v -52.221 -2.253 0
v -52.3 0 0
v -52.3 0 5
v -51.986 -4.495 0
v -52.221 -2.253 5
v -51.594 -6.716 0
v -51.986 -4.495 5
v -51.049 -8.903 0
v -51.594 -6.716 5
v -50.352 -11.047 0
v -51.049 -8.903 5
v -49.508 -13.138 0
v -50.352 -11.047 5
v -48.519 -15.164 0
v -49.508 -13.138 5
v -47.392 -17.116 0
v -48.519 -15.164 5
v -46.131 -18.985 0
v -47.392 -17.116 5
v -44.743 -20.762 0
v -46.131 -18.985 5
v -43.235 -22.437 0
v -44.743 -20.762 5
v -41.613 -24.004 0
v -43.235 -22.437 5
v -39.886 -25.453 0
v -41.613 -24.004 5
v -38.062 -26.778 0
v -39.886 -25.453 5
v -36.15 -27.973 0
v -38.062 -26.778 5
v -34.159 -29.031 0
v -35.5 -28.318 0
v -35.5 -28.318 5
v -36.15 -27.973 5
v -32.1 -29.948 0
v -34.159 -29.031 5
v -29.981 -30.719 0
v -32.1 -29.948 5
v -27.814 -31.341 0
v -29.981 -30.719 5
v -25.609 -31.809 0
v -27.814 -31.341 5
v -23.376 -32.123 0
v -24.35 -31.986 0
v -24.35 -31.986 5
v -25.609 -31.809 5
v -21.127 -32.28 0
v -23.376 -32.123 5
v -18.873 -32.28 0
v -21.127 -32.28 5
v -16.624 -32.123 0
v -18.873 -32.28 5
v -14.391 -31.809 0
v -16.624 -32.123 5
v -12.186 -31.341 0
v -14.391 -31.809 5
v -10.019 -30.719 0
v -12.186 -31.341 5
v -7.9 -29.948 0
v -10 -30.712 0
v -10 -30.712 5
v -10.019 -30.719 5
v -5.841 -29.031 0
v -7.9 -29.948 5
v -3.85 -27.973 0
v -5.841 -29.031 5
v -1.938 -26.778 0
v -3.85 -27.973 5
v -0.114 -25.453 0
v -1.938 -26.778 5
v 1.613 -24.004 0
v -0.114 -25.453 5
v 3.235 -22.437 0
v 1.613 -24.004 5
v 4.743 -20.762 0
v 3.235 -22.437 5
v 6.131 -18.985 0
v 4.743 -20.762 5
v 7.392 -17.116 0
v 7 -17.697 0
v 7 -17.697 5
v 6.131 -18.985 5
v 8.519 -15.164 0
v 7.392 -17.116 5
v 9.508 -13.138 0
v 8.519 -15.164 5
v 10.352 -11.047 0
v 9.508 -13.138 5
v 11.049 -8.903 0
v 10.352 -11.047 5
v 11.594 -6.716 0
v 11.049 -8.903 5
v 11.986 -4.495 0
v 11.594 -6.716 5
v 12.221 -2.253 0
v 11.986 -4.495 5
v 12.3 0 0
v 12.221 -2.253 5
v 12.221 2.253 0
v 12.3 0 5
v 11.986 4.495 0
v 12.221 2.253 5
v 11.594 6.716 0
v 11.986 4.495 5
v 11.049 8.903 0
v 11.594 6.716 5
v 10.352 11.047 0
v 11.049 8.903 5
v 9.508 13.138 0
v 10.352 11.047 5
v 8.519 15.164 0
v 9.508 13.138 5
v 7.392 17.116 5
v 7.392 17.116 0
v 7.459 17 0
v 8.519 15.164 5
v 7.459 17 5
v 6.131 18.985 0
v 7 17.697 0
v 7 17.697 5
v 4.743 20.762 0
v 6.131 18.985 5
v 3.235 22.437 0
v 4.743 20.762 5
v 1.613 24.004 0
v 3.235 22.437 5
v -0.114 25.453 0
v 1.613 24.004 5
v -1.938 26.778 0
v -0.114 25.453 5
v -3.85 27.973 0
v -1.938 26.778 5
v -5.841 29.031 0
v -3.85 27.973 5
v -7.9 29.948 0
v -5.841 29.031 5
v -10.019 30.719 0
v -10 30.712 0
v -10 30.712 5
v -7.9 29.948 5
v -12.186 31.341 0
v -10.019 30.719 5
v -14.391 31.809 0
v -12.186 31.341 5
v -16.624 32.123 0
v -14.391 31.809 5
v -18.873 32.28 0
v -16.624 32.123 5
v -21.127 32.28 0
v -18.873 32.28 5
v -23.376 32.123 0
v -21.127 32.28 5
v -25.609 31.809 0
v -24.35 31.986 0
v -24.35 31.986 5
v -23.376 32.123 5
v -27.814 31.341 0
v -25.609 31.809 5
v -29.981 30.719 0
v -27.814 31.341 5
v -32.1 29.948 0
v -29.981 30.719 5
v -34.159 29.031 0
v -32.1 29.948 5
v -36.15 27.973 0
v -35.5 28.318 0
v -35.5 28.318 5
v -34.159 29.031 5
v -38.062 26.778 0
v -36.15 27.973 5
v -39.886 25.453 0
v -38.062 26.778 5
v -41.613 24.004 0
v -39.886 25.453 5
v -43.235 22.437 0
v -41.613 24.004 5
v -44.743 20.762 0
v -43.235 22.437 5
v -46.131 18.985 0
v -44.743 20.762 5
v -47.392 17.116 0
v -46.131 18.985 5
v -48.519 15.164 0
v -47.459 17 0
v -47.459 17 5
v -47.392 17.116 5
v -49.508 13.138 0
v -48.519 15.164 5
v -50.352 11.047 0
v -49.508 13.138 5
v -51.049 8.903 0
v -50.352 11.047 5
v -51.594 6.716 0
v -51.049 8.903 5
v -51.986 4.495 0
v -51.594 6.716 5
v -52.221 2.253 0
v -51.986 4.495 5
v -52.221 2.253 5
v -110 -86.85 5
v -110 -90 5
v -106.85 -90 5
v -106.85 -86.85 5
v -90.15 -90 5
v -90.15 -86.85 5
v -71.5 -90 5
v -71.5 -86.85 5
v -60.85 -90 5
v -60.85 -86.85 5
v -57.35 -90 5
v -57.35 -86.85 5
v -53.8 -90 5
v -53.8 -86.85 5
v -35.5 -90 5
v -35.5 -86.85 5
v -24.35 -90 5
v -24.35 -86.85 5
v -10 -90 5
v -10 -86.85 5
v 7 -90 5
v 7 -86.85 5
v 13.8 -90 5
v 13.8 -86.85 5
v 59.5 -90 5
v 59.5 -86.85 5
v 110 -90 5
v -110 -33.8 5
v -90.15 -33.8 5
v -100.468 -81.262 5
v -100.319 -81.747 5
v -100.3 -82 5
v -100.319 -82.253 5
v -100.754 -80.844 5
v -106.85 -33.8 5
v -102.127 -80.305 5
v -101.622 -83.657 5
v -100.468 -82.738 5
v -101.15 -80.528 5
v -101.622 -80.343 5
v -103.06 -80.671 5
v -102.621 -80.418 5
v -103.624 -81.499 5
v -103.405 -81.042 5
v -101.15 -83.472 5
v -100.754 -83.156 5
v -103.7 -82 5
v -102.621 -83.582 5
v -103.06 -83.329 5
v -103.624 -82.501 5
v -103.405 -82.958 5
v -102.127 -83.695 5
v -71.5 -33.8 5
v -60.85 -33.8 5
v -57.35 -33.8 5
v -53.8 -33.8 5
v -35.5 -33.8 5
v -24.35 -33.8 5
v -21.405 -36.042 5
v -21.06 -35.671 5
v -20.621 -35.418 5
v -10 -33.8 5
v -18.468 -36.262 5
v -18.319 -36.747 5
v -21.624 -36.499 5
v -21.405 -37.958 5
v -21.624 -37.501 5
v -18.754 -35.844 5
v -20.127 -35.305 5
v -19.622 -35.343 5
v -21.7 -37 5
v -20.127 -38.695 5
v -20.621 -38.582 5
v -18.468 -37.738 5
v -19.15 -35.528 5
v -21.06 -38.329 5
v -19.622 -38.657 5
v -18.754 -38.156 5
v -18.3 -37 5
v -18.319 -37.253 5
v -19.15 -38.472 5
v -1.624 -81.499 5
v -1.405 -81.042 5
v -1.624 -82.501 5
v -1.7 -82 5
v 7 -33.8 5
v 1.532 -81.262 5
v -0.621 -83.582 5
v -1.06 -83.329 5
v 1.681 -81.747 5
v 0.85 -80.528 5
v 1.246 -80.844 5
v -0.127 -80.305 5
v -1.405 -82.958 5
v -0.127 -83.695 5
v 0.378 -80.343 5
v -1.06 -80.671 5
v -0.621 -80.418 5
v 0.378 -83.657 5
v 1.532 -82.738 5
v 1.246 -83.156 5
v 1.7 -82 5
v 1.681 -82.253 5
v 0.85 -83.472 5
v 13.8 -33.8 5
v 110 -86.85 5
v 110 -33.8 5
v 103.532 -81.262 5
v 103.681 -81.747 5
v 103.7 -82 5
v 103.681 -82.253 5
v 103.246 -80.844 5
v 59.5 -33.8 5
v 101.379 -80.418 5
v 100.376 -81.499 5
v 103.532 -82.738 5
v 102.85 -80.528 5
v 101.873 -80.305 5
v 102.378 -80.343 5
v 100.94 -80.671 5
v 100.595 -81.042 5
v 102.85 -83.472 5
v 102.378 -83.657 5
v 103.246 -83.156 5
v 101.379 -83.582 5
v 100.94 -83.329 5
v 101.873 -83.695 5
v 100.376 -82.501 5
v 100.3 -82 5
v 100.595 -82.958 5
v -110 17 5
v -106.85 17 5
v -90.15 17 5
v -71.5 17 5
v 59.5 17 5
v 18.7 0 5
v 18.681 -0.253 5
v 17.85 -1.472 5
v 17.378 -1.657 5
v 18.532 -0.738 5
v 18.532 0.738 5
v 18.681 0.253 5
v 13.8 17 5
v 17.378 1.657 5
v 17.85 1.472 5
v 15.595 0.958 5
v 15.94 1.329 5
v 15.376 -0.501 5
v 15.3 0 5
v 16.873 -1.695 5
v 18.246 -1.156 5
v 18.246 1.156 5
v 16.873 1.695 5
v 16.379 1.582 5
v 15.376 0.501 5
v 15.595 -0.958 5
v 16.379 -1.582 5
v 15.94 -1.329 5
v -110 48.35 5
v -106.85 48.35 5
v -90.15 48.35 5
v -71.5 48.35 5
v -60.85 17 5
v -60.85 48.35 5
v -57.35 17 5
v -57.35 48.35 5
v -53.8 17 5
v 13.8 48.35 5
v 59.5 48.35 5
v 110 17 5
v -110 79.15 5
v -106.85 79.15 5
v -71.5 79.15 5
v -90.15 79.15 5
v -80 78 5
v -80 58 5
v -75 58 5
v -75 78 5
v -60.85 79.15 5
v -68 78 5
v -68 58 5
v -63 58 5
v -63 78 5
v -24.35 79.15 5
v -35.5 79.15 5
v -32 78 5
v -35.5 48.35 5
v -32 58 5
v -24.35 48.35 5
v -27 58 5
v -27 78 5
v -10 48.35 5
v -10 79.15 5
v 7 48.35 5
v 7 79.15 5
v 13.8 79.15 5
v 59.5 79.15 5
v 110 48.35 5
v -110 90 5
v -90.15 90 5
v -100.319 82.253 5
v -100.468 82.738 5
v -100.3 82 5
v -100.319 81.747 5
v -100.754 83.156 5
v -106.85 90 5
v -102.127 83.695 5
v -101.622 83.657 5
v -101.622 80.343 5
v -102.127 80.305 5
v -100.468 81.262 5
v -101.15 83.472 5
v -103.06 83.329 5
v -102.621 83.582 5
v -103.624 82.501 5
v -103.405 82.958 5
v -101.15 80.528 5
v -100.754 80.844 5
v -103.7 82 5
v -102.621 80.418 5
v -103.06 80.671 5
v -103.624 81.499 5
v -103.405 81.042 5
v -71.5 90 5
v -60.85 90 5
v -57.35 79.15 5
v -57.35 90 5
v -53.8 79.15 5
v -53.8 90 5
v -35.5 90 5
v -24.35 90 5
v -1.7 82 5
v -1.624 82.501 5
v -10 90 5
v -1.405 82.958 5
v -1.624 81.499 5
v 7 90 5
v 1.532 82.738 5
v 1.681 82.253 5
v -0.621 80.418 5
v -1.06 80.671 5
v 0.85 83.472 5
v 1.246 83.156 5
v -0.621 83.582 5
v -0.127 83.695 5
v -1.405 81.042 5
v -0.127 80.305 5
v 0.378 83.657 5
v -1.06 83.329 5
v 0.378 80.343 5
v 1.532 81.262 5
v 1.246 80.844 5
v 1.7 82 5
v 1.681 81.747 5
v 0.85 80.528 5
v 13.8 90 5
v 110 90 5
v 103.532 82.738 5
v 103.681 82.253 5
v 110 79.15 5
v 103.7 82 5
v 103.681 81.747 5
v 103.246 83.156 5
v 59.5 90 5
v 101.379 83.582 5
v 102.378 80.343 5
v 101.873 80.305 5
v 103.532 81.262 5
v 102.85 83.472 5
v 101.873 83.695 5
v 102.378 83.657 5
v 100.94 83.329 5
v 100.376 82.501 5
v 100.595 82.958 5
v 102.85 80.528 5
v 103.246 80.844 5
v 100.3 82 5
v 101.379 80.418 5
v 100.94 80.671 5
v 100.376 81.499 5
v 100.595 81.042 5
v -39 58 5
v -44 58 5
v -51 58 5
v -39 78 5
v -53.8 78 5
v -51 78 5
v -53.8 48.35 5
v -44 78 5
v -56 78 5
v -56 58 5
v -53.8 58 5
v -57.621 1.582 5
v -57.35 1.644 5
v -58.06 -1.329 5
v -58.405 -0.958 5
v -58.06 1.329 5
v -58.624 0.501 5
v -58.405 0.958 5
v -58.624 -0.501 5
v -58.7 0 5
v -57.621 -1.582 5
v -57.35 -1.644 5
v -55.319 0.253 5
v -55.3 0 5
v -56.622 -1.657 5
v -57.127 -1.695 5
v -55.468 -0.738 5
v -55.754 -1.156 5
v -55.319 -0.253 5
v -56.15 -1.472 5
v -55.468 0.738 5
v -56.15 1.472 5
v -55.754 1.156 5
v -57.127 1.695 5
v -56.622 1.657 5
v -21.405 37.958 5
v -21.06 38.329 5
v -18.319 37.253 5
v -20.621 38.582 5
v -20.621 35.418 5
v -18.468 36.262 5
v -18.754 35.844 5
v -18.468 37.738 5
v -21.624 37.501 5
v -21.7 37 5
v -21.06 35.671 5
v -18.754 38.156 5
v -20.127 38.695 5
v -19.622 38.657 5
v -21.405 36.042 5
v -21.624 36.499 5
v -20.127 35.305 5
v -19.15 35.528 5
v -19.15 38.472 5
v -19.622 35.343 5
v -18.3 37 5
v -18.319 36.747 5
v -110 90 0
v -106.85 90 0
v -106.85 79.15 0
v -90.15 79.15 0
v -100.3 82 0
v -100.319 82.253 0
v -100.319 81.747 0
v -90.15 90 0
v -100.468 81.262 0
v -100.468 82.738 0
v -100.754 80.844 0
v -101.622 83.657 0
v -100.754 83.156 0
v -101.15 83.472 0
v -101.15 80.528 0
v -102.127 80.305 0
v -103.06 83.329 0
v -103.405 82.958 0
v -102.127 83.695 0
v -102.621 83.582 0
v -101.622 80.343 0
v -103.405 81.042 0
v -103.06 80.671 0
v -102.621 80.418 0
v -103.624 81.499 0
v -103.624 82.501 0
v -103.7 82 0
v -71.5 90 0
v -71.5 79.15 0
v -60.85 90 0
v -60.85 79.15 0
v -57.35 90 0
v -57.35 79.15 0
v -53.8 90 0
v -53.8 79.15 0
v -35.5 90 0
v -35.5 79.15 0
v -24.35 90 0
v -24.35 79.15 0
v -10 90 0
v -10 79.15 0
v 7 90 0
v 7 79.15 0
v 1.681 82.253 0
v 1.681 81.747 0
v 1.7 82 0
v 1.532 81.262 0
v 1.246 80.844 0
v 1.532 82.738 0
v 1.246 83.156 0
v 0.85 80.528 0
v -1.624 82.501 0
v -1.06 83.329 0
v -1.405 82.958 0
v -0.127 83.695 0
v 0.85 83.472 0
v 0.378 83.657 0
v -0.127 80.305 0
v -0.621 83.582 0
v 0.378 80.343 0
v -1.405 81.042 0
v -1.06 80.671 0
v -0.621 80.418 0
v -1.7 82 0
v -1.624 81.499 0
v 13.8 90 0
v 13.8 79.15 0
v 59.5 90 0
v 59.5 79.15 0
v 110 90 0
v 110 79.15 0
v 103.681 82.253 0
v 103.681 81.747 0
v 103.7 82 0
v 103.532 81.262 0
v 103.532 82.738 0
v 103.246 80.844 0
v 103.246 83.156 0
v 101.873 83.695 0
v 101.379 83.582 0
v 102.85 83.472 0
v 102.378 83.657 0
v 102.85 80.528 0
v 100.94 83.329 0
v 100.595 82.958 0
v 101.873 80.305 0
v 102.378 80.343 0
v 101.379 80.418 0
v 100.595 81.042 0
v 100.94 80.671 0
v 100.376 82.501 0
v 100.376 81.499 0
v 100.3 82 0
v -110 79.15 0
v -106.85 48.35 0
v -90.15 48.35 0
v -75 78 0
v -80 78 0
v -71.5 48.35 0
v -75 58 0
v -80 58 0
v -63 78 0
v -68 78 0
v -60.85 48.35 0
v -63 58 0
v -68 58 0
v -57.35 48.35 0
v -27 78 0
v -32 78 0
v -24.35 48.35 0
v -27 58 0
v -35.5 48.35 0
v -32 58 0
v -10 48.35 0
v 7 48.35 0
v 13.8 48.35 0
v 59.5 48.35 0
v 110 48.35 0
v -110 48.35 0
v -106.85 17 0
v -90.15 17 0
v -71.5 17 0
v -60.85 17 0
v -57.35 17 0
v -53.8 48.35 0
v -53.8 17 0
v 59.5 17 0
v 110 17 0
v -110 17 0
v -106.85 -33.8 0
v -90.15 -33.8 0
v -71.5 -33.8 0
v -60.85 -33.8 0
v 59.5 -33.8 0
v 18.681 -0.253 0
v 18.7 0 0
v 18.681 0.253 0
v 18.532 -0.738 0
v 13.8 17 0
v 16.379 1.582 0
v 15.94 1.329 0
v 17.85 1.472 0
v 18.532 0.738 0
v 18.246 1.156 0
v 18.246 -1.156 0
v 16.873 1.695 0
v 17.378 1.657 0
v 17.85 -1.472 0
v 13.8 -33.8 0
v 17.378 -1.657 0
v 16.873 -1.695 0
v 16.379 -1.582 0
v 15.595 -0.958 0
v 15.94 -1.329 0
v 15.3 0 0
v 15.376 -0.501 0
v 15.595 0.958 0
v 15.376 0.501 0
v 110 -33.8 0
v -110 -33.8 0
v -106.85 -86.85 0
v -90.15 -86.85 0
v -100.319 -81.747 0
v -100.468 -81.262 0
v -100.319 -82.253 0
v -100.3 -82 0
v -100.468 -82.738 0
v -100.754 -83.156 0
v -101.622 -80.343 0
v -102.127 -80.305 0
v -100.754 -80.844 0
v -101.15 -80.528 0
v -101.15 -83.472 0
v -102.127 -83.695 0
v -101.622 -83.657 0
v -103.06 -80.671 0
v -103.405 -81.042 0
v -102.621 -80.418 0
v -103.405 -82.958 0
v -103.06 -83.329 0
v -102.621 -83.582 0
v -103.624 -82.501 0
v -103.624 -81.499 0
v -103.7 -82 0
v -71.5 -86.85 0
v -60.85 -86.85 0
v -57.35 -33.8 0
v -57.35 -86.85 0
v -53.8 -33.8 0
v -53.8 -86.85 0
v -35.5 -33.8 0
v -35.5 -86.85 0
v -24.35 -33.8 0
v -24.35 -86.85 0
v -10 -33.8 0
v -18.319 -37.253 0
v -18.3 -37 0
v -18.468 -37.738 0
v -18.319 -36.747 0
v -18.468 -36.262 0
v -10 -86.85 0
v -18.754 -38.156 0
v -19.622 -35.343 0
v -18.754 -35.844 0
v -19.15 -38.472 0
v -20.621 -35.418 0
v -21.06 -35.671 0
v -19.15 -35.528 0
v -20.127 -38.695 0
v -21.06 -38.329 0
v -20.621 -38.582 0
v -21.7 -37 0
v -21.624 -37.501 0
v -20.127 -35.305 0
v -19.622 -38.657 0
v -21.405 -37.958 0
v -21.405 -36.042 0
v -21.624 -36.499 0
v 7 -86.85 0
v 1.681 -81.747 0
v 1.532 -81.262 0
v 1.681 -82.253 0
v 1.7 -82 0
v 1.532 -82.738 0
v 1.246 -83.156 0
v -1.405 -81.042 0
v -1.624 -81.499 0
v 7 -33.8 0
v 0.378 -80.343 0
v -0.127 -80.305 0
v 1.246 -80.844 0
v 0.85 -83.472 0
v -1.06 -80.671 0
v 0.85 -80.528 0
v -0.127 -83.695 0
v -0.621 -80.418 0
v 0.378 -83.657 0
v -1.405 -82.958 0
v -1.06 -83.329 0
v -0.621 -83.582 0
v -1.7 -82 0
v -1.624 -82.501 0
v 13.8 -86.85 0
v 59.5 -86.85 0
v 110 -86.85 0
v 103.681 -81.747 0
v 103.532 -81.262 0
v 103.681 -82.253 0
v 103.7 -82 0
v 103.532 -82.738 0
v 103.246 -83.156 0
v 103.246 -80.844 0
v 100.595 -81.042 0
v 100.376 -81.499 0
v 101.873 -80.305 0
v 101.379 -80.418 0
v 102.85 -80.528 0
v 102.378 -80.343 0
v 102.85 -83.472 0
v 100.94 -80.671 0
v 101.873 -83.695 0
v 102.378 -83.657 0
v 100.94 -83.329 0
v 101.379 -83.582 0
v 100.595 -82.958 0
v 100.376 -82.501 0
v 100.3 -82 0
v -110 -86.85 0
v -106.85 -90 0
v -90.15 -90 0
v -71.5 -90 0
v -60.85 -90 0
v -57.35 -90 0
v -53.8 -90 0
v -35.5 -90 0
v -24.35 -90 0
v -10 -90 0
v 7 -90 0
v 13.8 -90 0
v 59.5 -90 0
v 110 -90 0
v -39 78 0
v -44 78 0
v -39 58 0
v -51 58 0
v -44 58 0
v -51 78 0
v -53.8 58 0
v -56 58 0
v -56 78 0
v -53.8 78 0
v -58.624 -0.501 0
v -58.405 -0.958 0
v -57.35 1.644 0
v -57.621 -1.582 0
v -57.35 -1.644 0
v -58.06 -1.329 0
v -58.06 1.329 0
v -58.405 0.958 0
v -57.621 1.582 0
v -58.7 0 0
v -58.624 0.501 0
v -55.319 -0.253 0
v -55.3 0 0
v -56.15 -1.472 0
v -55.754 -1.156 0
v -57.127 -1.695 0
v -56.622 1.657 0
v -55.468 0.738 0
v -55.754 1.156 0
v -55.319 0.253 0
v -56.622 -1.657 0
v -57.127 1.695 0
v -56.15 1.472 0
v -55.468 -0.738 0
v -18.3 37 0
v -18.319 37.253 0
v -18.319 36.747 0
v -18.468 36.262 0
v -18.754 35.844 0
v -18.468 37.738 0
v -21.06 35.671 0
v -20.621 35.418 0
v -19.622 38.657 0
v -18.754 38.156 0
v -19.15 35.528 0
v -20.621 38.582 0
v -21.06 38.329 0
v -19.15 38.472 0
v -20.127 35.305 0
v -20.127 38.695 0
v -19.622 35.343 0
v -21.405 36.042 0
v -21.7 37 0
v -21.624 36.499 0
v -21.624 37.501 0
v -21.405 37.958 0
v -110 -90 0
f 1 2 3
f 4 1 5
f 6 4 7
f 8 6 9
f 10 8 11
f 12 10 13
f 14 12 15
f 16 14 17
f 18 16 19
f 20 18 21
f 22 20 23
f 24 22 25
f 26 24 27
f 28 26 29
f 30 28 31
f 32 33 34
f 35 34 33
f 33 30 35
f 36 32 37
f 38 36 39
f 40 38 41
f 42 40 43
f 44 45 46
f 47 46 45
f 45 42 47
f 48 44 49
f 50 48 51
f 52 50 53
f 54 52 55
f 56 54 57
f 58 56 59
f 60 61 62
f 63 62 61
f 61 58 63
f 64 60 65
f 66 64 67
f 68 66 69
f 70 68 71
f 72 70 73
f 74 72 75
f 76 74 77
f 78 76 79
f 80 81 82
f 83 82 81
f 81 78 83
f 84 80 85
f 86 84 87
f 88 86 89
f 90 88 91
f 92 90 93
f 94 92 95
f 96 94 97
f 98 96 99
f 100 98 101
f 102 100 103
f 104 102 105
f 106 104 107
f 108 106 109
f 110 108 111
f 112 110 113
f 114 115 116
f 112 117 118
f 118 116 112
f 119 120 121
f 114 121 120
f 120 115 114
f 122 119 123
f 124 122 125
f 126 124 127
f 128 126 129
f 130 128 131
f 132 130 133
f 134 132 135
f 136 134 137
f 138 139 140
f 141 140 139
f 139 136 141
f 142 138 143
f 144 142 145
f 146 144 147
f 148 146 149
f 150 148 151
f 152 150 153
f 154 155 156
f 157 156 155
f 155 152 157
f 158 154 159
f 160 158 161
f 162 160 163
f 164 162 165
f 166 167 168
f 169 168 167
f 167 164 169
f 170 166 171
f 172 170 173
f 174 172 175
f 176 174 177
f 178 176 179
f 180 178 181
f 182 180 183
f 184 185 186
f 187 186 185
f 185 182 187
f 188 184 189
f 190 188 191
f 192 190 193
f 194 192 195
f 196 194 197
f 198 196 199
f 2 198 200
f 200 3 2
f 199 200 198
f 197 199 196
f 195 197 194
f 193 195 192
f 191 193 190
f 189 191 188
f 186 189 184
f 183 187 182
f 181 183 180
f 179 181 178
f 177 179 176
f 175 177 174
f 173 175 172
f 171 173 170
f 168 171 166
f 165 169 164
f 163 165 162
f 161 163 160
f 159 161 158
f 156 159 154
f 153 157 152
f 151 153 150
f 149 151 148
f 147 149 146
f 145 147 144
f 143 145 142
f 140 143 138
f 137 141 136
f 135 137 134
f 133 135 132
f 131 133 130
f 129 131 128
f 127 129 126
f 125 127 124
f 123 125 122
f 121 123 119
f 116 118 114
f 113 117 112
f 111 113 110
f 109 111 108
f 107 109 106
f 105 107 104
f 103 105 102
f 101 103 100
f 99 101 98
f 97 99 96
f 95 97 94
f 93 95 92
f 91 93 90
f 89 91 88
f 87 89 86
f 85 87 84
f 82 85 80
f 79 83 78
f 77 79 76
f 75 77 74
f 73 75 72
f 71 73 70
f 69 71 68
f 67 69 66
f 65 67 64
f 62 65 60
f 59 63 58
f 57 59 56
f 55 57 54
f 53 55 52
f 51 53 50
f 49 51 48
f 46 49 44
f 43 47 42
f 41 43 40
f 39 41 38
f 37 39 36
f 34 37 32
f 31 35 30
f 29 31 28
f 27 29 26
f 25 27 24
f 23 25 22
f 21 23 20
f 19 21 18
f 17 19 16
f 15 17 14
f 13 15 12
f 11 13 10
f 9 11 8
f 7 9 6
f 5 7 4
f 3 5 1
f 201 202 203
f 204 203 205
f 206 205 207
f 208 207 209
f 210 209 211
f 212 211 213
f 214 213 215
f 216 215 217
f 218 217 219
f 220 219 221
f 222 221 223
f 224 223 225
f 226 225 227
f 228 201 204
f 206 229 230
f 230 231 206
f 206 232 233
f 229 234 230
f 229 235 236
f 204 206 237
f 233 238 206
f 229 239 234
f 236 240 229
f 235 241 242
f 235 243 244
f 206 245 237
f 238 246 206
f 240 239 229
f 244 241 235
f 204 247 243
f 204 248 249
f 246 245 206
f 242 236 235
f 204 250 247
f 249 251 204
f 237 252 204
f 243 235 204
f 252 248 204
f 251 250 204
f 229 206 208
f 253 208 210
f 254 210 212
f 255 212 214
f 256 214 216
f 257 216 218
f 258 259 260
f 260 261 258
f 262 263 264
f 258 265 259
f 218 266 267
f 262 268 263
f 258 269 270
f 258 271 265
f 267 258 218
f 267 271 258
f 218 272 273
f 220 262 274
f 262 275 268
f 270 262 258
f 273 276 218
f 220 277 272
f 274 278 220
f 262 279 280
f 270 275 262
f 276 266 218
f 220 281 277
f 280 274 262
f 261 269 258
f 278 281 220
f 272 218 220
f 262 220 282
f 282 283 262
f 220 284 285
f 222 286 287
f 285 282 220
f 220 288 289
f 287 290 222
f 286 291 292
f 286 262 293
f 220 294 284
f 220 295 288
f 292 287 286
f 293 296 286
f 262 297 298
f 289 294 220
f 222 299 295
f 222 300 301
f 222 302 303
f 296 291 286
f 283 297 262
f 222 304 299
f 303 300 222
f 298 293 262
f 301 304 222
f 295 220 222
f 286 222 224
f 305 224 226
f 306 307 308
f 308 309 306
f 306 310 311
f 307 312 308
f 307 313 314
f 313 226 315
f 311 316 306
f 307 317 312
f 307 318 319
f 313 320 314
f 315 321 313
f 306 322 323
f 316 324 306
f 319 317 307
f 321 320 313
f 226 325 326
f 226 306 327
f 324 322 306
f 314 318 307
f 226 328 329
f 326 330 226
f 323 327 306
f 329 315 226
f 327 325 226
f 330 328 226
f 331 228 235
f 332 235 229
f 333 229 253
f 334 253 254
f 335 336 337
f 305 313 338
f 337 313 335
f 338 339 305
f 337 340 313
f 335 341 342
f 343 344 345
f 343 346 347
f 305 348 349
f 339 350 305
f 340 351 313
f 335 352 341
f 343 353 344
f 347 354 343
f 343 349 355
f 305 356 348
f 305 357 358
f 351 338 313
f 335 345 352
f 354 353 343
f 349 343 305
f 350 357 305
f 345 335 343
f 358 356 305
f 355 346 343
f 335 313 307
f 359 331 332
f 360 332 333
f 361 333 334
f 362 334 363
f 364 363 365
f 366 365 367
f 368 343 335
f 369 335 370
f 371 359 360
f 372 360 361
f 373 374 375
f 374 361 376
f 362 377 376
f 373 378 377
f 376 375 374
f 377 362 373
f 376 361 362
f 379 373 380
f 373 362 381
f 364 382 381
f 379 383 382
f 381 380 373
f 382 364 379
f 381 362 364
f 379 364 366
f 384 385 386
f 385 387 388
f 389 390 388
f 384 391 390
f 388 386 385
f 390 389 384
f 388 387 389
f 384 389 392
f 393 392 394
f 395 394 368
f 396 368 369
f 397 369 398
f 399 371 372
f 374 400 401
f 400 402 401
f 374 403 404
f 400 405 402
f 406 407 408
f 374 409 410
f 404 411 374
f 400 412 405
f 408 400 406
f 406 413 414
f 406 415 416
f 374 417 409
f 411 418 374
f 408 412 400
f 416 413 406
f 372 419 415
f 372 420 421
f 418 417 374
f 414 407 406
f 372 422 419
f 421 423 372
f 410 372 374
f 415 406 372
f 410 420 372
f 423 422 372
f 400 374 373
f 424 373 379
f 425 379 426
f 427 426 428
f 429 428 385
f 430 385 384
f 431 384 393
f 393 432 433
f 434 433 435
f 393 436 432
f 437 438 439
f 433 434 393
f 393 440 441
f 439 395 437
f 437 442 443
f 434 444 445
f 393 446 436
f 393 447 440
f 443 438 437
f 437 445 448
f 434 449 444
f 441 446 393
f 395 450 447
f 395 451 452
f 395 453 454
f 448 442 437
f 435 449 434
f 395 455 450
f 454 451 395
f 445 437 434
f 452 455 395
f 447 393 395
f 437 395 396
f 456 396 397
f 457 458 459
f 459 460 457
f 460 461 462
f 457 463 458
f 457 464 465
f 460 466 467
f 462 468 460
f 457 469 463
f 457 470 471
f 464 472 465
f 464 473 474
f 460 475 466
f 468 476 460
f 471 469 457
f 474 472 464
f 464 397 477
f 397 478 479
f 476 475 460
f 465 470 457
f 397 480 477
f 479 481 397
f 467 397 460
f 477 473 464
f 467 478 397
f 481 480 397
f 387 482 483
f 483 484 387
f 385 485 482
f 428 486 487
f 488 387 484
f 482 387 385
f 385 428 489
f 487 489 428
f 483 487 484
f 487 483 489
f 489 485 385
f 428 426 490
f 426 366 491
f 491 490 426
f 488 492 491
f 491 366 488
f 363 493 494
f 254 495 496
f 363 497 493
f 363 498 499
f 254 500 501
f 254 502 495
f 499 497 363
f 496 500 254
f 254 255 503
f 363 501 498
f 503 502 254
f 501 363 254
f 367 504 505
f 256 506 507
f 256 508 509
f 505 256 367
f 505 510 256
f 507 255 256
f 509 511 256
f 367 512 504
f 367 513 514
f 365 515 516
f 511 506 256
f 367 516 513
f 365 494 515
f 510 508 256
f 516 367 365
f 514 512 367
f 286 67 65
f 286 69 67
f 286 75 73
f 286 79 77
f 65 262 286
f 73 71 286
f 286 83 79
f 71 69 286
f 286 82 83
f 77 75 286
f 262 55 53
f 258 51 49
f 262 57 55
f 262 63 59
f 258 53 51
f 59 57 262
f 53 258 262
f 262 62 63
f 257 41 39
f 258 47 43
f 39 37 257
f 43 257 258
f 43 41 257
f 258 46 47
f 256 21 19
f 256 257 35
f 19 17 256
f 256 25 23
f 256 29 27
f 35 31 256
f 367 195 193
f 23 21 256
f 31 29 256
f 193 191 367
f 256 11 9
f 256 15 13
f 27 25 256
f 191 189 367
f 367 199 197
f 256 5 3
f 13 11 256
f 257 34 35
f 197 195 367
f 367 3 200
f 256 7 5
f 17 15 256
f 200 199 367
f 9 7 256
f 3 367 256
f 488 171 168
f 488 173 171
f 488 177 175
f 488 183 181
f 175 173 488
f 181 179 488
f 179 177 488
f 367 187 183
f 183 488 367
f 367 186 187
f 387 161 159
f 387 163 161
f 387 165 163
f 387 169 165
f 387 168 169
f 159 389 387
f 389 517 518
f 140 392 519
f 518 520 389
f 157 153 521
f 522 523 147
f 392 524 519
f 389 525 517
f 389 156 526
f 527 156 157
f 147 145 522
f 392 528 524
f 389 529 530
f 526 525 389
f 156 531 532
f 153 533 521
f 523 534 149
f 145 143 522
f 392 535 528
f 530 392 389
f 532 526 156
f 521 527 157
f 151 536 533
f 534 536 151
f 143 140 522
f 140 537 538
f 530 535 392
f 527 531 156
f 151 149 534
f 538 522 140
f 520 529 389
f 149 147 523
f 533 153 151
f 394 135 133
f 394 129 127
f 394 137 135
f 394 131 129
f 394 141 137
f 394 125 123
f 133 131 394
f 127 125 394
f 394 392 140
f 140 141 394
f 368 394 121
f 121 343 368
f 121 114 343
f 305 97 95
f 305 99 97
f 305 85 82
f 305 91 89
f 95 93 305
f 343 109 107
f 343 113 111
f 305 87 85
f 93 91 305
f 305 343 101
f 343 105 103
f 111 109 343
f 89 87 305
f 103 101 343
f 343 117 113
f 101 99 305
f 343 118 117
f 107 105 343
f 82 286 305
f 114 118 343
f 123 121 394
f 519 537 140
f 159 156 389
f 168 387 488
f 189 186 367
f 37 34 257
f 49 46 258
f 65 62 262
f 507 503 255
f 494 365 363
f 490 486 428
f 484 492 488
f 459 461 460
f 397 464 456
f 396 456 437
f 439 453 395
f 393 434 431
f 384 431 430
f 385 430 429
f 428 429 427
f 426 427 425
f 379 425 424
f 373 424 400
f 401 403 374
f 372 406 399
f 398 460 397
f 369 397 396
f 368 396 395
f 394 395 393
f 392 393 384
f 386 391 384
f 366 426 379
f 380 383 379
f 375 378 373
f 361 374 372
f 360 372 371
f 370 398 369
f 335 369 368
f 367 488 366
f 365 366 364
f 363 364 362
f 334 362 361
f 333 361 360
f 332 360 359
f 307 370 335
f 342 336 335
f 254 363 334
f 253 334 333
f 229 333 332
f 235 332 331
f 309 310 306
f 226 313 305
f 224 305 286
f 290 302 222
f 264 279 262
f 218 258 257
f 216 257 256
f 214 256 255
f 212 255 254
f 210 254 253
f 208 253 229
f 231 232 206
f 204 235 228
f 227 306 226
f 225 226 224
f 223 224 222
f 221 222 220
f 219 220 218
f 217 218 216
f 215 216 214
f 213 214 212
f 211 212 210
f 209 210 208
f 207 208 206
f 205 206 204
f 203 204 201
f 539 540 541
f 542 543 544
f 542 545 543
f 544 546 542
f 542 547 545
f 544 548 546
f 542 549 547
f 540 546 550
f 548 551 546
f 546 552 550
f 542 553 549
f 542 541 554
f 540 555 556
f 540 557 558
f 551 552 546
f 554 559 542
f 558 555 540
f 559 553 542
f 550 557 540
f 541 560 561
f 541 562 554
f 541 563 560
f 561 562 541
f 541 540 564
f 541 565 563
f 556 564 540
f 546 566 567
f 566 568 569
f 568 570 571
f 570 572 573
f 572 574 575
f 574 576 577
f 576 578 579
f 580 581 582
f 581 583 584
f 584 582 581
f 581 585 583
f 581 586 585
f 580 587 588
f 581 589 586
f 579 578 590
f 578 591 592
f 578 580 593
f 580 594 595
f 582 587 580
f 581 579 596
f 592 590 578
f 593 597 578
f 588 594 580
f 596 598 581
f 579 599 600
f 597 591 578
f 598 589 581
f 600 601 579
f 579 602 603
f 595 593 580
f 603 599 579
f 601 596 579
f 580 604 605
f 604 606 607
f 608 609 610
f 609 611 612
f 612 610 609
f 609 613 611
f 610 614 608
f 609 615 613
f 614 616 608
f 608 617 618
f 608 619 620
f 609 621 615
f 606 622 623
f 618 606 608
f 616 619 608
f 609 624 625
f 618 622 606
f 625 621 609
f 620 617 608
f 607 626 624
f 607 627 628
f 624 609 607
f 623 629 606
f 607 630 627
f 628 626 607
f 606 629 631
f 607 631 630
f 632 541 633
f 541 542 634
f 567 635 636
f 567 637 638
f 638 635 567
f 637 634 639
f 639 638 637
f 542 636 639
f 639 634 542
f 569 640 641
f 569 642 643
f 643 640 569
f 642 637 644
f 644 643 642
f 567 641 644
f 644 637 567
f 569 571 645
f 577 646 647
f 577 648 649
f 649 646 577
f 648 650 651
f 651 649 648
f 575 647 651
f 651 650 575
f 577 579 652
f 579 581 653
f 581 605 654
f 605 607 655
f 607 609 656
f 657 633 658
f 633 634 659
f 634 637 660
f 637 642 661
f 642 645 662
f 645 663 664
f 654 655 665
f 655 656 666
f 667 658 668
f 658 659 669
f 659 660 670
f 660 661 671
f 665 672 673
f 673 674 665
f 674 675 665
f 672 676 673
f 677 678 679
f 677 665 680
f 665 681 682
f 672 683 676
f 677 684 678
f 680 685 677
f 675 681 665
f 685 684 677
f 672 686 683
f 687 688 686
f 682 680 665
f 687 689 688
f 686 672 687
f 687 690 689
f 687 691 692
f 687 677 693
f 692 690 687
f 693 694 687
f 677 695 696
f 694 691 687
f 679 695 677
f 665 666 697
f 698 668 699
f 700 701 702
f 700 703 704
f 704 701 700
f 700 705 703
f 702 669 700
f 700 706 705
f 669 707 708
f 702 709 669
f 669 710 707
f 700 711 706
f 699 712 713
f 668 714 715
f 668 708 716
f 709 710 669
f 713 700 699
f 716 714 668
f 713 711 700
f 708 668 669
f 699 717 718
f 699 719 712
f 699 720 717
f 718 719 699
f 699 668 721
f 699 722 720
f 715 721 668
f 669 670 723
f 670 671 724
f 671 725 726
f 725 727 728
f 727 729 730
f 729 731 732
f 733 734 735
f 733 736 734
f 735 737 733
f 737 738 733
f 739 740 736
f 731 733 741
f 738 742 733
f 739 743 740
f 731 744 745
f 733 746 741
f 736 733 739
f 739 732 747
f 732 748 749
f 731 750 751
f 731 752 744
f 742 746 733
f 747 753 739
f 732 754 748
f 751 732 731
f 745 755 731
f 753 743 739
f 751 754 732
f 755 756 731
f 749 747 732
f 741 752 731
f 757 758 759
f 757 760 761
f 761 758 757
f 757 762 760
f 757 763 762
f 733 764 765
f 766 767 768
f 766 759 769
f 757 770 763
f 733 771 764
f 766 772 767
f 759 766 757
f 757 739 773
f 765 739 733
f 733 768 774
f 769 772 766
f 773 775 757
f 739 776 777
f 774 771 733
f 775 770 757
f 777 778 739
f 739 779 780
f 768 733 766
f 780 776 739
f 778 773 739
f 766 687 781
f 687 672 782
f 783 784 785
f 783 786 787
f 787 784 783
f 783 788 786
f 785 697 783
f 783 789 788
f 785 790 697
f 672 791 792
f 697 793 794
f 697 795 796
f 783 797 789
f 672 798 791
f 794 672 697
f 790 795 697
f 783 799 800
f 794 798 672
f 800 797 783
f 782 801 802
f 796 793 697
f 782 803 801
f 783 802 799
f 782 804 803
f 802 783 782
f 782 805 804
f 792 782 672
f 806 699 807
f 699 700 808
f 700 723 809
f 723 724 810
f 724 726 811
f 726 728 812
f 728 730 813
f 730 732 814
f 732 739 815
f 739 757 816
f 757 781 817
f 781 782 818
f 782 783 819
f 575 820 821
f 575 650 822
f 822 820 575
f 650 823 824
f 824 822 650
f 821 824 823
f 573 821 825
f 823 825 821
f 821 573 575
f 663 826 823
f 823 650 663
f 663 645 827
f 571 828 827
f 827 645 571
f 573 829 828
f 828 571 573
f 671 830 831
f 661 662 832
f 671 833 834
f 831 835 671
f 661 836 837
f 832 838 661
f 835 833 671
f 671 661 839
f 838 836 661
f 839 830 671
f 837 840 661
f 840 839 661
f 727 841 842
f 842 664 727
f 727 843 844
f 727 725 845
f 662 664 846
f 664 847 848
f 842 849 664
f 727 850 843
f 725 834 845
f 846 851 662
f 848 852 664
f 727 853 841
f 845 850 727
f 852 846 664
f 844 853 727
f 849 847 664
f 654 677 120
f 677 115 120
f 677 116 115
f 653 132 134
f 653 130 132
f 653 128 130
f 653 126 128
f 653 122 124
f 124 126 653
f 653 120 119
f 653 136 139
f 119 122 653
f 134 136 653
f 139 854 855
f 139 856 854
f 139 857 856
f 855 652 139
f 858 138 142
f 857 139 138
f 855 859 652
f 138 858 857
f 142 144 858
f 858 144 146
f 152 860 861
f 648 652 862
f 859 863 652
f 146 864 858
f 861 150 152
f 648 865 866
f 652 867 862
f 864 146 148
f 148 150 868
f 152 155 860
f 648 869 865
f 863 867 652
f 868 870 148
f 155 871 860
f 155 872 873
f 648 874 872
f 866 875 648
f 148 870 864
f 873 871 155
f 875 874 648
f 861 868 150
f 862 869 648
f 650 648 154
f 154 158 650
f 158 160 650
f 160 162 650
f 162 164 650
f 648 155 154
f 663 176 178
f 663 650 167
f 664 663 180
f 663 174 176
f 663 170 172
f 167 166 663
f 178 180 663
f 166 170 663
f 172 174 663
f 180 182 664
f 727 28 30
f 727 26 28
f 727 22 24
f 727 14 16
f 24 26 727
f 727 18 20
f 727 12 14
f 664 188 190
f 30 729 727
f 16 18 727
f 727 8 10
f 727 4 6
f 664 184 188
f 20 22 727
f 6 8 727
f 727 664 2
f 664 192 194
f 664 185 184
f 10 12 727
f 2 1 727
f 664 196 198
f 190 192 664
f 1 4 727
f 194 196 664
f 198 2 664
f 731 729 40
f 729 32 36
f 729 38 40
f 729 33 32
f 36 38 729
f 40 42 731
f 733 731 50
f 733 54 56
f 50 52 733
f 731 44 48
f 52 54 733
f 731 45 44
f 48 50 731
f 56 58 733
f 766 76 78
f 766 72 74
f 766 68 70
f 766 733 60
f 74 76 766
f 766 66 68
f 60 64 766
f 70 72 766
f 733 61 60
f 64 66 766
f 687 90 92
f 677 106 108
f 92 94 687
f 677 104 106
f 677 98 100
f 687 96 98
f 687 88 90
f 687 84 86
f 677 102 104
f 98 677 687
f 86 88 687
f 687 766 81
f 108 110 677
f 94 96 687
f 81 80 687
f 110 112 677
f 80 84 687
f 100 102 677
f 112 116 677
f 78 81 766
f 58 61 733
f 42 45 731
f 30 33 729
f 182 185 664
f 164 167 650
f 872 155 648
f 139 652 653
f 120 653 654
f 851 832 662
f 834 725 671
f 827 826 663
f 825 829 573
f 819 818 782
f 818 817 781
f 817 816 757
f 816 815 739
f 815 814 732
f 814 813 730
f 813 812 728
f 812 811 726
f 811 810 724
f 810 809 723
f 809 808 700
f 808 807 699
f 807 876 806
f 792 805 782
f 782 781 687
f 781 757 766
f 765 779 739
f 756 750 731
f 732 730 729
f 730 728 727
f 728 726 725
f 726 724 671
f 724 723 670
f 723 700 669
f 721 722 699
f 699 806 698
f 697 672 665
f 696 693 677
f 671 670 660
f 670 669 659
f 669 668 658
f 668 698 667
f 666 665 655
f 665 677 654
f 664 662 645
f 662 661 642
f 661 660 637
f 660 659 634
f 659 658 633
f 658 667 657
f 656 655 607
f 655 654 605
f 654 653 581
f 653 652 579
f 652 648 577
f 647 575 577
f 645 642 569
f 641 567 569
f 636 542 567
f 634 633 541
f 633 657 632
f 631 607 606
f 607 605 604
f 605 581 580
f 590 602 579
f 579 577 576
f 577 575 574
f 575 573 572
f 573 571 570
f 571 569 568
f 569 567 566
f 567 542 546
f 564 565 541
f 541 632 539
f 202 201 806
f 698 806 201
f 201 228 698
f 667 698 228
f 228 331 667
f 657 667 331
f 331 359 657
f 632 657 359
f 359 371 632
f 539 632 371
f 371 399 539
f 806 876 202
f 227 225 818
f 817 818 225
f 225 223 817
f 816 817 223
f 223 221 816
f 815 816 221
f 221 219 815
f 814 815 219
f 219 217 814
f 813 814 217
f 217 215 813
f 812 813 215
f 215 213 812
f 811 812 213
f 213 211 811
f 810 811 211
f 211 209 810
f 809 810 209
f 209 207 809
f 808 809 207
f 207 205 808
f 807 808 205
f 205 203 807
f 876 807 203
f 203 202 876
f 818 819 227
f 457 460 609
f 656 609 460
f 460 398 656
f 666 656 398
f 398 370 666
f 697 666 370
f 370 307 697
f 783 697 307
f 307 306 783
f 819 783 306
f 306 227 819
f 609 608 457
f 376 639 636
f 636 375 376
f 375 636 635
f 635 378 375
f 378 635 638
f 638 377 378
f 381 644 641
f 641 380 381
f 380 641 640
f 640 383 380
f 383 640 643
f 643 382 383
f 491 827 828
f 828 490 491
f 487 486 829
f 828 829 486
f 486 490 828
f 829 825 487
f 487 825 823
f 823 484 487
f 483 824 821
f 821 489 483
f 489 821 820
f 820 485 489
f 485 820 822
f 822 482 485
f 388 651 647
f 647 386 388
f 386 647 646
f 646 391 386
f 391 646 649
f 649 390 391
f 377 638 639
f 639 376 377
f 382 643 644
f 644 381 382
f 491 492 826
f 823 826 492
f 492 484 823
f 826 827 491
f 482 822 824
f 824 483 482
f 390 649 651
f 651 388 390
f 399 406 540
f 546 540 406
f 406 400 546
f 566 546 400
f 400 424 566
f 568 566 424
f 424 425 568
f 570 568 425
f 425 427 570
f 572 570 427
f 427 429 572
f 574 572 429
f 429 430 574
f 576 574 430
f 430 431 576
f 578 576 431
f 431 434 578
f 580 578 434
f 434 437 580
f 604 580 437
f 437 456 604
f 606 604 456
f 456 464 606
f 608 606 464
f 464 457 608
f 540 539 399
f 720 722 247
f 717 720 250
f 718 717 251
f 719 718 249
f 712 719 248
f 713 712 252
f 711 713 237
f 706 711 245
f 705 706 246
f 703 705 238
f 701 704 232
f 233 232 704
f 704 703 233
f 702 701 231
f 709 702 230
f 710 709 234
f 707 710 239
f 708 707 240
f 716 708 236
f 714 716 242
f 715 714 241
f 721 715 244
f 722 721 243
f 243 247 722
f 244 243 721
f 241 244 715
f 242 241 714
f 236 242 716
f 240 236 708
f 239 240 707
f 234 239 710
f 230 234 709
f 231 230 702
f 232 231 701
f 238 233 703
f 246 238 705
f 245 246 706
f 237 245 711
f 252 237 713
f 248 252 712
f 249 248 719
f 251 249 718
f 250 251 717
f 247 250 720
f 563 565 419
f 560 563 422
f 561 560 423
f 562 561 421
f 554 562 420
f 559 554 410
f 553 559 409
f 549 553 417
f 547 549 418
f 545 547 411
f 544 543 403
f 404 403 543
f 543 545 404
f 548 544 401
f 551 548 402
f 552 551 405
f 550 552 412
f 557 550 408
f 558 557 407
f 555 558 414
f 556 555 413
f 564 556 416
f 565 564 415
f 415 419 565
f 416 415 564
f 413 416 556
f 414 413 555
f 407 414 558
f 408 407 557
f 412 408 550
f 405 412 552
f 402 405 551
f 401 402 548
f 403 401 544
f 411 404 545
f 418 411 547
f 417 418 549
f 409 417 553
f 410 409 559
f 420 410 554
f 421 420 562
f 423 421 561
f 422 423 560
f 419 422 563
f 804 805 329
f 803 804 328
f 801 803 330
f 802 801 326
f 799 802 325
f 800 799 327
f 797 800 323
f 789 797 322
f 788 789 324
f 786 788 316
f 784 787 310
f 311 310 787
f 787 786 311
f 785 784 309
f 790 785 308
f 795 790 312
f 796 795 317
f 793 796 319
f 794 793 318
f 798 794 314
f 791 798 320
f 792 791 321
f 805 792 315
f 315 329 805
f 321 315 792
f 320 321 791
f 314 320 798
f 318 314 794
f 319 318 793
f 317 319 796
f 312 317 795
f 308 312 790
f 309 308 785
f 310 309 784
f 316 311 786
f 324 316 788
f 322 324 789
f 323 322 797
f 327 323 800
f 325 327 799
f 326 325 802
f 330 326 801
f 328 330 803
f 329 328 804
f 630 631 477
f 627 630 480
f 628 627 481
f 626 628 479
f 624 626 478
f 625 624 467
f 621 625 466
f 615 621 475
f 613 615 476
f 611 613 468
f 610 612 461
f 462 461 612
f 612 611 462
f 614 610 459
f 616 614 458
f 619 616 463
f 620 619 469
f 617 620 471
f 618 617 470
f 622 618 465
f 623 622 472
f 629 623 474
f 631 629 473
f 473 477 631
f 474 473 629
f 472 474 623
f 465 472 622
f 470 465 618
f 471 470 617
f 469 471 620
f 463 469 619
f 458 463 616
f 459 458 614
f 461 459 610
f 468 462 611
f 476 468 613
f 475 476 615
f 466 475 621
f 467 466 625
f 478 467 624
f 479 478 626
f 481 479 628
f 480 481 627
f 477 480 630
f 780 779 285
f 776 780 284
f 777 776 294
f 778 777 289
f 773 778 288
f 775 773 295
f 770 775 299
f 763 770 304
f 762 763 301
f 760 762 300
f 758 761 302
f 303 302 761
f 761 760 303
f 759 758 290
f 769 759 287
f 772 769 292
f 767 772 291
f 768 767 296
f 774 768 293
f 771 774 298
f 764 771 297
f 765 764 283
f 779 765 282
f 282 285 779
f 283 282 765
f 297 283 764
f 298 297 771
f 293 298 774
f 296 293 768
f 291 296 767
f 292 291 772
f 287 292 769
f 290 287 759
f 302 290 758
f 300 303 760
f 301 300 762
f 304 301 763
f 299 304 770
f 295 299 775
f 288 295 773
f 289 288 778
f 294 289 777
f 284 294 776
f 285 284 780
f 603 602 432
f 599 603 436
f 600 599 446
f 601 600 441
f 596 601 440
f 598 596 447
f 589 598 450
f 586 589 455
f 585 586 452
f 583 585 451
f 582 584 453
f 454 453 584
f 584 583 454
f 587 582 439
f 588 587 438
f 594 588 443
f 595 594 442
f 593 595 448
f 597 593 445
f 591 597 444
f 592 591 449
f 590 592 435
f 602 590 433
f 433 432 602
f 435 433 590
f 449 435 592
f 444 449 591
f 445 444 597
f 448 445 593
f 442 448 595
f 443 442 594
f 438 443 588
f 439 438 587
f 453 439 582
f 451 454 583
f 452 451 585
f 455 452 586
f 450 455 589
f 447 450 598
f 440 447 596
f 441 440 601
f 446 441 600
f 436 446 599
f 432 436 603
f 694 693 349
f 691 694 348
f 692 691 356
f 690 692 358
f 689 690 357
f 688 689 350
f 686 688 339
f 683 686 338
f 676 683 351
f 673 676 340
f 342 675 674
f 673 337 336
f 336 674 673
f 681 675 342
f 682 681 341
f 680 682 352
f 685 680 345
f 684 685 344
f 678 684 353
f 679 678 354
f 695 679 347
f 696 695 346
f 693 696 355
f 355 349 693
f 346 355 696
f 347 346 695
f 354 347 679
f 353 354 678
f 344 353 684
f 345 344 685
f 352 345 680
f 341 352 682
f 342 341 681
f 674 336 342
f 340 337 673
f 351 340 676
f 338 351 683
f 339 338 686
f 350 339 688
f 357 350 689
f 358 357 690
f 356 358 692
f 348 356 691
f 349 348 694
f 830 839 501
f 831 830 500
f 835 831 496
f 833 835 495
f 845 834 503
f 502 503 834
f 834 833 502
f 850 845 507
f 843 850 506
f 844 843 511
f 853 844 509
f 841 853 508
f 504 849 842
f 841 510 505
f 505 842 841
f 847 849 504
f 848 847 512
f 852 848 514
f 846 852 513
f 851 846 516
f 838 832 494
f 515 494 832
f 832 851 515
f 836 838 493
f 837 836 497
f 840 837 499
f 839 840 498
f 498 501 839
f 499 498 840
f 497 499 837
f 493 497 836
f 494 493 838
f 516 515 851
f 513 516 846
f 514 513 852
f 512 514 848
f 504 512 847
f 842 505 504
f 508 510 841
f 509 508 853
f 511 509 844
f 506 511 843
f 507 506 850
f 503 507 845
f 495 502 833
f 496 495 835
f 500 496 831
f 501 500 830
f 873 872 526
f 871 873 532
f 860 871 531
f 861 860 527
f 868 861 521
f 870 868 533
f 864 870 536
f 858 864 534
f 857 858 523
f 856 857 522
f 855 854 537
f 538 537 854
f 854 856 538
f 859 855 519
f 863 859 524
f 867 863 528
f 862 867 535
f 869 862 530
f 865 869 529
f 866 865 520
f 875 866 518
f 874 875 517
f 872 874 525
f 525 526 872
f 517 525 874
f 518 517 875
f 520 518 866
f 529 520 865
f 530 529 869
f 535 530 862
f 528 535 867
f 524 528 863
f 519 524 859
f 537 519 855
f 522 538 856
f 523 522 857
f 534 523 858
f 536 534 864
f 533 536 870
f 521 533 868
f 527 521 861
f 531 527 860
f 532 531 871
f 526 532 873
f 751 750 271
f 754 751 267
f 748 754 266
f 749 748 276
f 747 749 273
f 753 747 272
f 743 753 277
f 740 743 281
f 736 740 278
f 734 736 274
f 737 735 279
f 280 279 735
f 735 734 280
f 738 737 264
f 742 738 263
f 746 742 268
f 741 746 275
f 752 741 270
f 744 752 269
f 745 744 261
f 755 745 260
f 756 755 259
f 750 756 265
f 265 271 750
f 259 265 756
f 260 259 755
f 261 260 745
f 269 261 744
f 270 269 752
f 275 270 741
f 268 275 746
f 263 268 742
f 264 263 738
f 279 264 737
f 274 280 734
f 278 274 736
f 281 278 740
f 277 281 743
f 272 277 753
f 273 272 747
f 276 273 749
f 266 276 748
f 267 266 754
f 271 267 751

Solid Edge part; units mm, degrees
sketch "Sketch1" plane through (0, 0, 0) normal (0, 0, 1) x (1, 0, 0)
  line L0 (-110, -90) -> (110, -90)
  line L1 (110, -90) -> (110, 90)
  line L2 (110, 90) -> (-110, 90)
  line L3 (-110, 90) -> (-110, -90)
  circle A0 centre (-20, 0) radius 32.3
  circle A1 centre (-102, -82) radius 1.7
  circle A2 centre (-102, 82) radius 1.7
  circle A3 centre (102, -82) radius 1.7
  circle A4 centre (102, 82) radius 1.7
  circle A5 centre (0, -82) radius 1.7
  circle A6 centre (0, 82) radius 1.7
  circle A7 centre (17, 0) radius 1.7
  circle A8 centre (-57, 0) radius 1.7
  circle A9 centre (-20, 37) radius 1.7
  circle A10 centre (-20, -37) radius 1.7
  line L4 (-80, 58) -> (-75, 58)
  line L5 (-75, 58) -> (-75, 78)
  line L6 (-75, 78) -> (-80, 78)
  line L7 (-80, 78) -> (-80, 58)
  line L8 (-68, 58) -> (-63, 58)
  line L9 (-63, 58) -> (-63, 78)
  line L10 (-63, 78) -> (-68, 78)
  line L11 (-68, 78) -> (-68, 58)
  line L12 (-56, 58) -> (-51, 58)
  line L13 (-51, 58) -> (-51, 78)
  line L14 (-51, 78) -> (-56, 78)
  line L15 (-56, 78) -> (-56, 58)
  line L16 (-44, 58) -> (-39, 58)
  line L17 (-39, 58) -> (-39, 78)
  line L18 (-39, 78) -> (-44, 78)
  line L19 (-44, 78) -> (-44, 58)
  line L20 (-32, 58) -> (-27, 58)
  line L21 (-27, 58) -> (-27, 78)
  line L22 (-27, 78) -> (-32, 78)
  line L23 (-32, 78) -> (-32, 58)
extrude "Protrusion1" add sketch "Sketch1" along normal blind 5
